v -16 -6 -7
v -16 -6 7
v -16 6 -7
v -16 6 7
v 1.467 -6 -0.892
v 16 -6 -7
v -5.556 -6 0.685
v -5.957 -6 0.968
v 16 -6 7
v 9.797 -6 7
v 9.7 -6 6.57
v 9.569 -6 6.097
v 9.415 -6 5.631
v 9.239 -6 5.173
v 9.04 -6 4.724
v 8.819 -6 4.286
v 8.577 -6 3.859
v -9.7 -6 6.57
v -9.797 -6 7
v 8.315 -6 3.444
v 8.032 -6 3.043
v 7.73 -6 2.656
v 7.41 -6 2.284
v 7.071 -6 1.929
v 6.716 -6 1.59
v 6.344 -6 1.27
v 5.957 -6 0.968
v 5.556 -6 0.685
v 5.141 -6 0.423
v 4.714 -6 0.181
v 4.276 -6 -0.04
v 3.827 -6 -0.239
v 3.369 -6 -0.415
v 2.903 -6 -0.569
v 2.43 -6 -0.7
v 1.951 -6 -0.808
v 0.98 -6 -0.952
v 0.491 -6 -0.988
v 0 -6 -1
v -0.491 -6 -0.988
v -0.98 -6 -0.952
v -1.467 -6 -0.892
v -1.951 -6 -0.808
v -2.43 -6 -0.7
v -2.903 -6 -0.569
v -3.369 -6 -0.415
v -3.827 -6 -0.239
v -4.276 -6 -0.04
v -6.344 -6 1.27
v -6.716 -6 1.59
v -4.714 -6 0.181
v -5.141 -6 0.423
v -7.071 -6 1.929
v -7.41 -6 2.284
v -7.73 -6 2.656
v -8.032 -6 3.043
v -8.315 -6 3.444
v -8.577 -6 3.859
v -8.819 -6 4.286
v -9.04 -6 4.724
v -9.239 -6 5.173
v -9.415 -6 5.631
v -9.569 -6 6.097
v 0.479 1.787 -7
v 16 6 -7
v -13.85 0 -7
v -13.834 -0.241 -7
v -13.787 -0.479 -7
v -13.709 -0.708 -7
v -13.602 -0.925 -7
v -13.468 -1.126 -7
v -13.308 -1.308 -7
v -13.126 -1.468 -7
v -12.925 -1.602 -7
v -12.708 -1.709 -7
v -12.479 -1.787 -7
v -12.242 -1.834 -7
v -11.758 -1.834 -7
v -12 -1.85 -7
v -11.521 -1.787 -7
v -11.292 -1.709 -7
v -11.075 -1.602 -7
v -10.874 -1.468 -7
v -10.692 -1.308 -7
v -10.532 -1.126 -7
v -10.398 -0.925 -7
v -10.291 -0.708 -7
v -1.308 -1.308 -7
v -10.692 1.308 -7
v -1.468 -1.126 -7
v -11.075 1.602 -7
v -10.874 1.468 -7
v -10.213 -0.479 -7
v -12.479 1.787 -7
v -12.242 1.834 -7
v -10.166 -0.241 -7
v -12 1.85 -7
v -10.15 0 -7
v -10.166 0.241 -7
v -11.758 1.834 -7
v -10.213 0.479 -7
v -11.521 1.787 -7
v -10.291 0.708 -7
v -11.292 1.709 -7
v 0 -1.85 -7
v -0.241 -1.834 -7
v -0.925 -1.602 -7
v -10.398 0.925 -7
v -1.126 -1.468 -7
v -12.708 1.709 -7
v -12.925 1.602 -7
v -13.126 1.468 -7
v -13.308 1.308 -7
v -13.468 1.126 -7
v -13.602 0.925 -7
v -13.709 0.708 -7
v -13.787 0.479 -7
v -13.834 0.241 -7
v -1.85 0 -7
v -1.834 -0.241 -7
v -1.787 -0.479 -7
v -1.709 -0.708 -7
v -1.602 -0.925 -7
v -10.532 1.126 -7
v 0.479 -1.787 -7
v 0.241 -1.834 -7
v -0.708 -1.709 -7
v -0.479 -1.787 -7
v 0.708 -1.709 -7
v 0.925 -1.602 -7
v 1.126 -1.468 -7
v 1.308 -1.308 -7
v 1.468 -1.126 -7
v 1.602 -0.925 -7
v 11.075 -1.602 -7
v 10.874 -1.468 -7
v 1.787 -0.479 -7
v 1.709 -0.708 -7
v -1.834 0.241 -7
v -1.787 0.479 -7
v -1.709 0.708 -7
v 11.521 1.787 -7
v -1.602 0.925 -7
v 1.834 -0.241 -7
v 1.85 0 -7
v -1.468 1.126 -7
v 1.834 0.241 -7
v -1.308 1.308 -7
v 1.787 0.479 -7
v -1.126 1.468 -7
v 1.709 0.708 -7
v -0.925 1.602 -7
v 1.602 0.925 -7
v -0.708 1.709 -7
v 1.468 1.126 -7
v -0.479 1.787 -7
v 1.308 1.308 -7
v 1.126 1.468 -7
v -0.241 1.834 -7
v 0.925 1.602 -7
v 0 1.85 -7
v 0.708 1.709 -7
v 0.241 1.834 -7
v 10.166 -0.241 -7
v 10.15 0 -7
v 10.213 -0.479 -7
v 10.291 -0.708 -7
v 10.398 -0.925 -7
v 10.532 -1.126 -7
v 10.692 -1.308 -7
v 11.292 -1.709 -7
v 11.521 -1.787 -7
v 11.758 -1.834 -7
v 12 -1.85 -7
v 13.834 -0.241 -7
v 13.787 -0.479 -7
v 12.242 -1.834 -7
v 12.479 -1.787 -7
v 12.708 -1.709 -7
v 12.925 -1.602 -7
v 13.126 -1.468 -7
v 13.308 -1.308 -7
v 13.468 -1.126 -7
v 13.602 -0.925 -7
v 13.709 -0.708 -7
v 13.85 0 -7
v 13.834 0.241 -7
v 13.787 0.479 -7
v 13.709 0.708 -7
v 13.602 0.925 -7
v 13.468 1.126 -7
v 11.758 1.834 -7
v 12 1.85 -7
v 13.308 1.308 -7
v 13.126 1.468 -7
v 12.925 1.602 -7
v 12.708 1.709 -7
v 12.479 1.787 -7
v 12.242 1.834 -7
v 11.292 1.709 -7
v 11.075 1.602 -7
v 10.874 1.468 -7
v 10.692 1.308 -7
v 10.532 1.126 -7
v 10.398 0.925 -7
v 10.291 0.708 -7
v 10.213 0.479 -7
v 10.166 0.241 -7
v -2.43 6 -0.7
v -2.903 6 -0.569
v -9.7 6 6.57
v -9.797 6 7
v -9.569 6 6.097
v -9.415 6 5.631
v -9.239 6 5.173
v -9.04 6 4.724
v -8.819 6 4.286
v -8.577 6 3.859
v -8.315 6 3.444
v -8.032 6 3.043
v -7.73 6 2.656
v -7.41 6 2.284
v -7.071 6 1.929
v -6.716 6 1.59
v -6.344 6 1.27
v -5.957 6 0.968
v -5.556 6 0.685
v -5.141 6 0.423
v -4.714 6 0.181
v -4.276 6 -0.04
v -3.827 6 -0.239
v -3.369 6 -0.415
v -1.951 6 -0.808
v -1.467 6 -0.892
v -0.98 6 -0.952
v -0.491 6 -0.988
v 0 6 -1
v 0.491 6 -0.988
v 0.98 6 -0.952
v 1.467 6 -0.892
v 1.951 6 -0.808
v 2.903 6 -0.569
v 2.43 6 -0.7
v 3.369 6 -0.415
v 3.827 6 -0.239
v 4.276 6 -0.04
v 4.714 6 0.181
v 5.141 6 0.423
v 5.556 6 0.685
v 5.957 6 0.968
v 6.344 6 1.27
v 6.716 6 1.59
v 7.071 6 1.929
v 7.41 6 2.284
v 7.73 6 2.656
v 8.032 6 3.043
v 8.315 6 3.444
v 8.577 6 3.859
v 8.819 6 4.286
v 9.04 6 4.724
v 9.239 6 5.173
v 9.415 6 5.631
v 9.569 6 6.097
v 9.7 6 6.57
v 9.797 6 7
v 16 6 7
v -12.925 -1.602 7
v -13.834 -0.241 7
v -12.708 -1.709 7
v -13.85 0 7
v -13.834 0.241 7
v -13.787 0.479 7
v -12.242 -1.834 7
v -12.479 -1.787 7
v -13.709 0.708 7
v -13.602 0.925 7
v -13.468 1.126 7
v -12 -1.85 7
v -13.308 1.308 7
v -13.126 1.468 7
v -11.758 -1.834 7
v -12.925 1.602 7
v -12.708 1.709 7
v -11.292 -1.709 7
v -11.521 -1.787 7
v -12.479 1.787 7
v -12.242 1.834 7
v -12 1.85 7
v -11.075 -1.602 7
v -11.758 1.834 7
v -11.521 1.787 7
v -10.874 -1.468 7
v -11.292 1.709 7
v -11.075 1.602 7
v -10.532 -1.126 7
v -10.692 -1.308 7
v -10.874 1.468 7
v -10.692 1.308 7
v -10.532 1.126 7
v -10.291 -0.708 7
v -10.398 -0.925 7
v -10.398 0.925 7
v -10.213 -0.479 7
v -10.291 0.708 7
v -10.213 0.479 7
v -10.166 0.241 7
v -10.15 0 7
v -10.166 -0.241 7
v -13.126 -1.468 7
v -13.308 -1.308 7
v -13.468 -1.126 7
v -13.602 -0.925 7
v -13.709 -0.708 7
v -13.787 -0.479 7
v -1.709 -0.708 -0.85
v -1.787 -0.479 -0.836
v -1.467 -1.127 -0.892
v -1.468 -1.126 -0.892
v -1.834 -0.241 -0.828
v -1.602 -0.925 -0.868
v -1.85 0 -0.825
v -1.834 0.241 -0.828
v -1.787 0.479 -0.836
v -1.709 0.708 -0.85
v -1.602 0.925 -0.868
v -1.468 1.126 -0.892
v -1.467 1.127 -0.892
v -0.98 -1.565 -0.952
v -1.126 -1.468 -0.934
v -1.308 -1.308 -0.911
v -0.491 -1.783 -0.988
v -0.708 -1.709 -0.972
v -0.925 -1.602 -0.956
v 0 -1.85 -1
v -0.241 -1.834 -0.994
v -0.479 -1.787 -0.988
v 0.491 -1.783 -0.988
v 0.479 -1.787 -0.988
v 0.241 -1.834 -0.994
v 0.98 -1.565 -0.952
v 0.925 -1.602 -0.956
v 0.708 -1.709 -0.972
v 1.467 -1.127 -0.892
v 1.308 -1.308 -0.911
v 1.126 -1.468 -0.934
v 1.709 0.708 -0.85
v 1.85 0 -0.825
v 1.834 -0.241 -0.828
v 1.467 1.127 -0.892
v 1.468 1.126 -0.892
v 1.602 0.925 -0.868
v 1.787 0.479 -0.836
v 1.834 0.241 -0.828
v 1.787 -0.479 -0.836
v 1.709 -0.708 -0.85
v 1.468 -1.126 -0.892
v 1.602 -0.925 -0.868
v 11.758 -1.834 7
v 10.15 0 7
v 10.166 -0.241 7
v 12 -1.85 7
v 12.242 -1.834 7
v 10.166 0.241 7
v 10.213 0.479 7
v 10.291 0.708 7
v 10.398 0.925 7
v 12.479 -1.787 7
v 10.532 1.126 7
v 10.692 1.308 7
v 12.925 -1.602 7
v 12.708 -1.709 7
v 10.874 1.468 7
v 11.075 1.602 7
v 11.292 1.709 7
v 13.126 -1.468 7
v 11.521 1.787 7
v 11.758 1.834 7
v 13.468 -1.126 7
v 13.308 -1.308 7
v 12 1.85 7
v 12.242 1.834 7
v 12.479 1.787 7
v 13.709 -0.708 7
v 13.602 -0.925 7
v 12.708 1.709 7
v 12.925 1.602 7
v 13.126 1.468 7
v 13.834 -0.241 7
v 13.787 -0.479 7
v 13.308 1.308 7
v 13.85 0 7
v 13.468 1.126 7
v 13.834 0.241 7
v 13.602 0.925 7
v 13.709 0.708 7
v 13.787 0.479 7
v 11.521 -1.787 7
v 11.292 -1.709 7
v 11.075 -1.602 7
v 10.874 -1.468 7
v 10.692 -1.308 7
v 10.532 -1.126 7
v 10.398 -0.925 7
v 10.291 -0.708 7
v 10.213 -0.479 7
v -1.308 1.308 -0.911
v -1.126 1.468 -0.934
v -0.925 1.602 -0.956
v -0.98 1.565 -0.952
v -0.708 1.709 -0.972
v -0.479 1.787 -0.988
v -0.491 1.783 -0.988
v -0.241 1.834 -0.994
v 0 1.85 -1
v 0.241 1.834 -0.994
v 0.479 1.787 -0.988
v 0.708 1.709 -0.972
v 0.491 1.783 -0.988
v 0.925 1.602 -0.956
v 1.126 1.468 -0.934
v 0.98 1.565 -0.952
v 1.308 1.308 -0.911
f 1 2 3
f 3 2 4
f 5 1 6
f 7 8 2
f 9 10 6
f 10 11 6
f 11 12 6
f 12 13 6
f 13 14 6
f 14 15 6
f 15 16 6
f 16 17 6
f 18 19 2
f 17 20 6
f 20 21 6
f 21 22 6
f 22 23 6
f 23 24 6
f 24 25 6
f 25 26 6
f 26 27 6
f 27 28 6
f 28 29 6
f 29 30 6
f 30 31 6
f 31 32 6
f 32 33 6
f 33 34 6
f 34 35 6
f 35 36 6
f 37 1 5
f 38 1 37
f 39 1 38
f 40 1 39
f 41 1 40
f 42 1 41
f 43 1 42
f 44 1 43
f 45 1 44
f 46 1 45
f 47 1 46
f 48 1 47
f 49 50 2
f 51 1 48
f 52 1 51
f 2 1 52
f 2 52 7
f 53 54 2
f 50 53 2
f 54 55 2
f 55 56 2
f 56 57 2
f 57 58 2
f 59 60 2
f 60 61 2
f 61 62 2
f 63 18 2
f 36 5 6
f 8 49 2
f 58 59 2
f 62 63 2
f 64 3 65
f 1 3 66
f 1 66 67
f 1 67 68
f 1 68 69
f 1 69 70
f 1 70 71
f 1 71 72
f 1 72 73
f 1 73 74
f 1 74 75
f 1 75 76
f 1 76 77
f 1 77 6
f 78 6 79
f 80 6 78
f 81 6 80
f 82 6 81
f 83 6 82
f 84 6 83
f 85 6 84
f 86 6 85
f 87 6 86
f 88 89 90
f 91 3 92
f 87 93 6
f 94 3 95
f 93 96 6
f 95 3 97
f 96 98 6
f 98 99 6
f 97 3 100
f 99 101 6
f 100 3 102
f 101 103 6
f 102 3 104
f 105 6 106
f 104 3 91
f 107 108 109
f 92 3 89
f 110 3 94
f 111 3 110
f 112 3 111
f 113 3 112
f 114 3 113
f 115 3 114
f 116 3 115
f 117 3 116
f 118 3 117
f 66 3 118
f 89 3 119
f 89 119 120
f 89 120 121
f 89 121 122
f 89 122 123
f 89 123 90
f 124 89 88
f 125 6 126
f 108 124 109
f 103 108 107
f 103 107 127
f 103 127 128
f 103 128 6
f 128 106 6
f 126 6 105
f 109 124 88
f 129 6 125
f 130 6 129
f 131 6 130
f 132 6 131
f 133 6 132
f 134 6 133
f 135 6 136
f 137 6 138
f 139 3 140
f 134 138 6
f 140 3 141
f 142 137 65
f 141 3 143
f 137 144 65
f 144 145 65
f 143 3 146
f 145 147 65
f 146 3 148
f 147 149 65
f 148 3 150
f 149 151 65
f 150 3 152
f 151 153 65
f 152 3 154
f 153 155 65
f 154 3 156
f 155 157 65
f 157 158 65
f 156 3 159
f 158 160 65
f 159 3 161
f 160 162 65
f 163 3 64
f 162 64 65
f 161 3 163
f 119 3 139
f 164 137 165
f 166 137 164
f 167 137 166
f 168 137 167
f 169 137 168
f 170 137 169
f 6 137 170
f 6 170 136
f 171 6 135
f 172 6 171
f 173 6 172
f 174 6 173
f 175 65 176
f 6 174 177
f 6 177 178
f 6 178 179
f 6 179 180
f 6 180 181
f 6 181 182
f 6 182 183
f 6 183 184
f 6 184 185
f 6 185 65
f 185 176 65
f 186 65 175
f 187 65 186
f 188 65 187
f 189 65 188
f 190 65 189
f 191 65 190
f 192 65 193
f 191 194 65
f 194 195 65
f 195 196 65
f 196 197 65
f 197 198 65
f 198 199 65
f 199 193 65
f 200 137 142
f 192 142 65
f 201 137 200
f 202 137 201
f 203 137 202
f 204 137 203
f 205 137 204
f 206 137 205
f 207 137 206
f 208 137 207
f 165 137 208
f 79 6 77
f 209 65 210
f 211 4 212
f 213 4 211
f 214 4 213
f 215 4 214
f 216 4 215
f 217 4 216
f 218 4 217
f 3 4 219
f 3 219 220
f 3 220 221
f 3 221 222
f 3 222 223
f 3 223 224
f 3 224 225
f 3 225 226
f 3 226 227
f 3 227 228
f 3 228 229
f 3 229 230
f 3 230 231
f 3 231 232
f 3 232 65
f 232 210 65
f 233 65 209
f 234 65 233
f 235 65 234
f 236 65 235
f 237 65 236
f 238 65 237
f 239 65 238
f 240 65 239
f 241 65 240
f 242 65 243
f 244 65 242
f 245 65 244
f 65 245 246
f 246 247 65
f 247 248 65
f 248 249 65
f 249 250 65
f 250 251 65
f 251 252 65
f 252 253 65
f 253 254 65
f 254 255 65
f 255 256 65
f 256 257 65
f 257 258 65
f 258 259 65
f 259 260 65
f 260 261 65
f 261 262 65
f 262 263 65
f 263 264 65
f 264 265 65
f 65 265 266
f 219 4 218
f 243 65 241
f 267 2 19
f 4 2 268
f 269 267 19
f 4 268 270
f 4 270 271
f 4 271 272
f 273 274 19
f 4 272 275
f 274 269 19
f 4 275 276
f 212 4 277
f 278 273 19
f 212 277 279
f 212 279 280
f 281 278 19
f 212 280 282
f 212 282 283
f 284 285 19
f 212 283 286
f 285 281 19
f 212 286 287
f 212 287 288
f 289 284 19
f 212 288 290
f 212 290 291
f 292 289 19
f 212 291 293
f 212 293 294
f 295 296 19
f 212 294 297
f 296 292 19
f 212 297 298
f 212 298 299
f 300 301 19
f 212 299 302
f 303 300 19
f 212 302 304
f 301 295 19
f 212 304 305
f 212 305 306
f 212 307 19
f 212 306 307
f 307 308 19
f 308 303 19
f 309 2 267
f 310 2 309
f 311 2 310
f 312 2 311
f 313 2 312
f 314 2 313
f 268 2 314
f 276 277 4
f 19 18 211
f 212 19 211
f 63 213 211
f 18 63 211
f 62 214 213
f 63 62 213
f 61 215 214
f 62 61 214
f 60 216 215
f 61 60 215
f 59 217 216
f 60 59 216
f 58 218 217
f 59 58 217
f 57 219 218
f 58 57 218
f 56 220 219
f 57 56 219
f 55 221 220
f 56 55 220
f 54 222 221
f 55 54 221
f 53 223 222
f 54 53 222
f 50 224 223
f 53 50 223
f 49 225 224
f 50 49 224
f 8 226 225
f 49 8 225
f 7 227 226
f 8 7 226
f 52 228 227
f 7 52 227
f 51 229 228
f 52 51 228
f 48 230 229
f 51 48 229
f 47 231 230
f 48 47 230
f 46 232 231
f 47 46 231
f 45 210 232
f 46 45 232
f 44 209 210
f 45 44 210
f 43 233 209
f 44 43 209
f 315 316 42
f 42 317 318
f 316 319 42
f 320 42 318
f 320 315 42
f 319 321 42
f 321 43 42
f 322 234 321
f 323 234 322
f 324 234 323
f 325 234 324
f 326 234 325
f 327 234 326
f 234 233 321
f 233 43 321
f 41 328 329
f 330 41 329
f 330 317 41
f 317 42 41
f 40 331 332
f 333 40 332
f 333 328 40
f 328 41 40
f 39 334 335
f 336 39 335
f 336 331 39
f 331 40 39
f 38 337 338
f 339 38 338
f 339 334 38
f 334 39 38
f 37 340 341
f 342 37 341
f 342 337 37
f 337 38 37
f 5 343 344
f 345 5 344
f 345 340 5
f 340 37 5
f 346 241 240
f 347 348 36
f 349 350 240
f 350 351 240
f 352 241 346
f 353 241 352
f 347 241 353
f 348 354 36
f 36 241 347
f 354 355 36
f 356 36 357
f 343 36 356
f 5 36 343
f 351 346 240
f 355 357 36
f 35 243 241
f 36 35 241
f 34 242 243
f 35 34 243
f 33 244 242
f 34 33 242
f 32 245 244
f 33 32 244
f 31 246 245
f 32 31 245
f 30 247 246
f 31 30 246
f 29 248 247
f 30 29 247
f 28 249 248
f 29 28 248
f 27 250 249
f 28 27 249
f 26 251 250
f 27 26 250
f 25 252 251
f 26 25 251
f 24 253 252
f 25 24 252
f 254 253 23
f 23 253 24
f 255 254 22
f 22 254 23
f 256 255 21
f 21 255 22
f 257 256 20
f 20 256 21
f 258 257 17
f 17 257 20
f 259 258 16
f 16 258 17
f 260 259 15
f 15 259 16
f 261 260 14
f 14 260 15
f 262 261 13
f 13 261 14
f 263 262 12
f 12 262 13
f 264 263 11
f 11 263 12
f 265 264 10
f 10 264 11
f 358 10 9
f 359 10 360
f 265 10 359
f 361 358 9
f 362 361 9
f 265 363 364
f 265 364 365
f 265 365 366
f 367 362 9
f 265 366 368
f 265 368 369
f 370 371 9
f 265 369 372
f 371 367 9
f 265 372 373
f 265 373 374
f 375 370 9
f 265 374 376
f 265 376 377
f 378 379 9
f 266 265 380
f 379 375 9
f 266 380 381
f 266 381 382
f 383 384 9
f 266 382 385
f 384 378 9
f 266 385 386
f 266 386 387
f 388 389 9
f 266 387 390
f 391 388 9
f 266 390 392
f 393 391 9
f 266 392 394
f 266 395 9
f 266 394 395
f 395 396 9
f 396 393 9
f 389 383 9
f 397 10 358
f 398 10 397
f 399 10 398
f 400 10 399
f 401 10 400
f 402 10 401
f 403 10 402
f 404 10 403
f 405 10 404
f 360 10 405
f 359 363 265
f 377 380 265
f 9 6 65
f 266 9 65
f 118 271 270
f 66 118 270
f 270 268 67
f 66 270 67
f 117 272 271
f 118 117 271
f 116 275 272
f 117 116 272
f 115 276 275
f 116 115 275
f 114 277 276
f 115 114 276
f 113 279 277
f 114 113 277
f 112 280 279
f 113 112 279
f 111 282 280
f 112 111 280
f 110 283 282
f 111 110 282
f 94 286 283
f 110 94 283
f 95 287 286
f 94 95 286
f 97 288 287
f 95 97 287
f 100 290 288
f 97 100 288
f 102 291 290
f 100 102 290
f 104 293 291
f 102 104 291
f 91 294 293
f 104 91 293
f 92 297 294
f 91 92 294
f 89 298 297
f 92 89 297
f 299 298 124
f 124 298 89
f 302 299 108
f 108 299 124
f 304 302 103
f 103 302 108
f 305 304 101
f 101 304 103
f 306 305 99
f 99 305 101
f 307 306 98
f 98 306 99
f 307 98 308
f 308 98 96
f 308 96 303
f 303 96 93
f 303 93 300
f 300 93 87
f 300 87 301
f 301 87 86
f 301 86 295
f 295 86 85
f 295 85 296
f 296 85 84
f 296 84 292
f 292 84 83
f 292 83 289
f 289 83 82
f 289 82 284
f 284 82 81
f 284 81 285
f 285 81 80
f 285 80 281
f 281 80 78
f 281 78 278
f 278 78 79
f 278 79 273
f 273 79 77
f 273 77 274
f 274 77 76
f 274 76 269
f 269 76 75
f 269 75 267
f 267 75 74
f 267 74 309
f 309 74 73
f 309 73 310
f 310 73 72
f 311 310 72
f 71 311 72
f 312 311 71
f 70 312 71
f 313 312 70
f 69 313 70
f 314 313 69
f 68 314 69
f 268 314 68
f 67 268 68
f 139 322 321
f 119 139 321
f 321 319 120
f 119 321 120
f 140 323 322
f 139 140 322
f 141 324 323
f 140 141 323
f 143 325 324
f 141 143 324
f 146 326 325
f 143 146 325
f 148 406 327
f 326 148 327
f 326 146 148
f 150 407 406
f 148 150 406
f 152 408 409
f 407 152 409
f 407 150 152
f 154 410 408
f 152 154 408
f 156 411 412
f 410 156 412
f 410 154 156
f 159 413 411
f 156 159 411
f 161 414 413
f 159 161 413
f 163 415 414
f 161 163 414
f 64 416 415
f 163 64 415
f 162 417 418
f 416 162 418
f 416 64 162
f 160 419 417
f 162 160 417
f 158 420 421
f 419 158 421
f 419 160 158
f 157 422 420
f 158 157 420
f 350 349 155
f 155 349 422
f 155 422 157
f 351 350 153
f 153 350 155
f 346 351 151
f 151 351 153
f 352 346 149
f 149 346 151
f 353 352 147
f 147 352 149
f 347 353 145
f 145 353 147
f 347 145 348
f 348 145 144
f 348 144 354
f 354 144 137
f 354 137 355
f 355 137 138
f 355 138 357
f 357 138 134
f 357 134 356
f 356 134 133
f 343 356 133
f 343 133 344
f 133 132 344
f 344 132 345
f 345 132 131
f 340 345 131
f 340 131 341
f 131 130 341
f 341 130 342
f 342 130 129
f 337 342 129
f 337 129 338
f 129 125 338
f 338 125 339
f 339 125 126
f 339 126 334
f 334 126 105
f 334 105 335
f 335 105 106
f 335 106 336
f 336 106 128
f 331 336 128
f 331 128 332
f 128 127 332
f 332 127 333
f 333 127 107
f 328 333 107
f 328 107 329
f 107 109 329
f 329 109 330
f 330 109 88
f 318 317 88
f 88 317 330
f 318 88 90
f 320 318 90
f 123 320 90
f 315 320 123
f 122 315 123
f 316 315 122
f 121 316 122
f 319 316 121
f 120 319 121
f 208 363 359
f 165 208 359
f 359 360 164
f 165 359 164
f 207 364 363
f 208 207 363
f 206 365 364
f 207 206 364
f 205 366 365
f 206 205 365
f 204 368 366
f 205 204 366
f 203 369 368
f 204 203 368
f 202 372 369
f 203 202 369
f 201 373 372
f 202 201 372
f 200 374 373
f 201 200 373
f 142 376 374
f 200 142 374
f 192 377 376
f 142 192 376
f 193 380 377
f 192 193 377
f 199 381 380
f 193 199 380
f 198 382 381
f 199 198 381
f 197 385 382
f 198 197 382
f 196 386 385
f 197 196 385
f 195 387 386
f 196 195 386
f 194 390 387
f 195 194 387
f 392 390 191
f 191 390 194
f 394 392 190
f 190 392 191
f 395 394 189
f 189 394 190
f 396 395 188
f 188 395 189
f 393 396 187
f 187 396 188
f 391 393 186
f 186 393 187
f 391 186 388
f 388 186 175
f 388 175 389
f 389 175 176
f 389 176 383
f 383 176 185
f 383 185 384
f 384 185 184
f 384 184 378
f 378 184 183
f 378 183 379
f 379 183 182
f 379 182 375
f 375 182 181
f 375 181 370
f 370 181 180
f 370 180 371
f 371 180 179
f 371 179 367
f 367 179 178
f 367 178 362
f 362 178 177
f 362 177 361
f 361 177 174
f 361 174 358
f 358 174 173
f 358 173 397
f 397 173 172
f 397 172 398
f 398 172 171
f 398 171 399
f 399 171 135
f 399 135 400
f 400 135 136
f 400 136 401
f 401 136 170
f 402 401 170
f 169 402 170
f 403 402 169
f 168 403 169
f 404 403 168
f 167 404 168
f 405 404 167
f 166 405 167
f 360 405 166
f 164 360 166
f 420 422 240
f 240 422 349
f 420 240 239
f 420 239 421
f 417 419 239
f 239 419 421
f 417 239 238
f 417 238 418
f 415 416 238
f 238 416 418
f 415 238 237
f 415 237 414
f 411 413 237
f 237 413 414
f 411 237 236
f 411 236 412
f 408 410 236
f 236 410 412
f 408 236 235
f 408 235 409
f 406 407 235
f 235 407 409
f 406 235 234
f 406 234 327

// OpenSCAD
module clamp_body()
{
screw_hole_r=1.85; // for 3.5mm screws
  difference()
    {
    // main body around spar hole
    cube([32,12,14], center=true);
    union()
      {
      translate([0,0,9])
        // main notch for spar
        rotate(90,[1,0,0])
        cylinder(h=50, r=10, center=true,$fn=128);

      // centre hole for bolting through spar
      cylinder(h=40,r=screw_hole_r,center=true,$fn=48);
      // Holes along side rails for bolting alongside spar
      translate([12,0,-20])
      cylinder(h=40,r=screw_hole_r,centre=true,$fn=48);
      translate([-12,0,-20])
      cylinder(h=40,r=screw_hole_r,centre=true,$fn=48);
      
    }
  }
 
}

clamp_body();
